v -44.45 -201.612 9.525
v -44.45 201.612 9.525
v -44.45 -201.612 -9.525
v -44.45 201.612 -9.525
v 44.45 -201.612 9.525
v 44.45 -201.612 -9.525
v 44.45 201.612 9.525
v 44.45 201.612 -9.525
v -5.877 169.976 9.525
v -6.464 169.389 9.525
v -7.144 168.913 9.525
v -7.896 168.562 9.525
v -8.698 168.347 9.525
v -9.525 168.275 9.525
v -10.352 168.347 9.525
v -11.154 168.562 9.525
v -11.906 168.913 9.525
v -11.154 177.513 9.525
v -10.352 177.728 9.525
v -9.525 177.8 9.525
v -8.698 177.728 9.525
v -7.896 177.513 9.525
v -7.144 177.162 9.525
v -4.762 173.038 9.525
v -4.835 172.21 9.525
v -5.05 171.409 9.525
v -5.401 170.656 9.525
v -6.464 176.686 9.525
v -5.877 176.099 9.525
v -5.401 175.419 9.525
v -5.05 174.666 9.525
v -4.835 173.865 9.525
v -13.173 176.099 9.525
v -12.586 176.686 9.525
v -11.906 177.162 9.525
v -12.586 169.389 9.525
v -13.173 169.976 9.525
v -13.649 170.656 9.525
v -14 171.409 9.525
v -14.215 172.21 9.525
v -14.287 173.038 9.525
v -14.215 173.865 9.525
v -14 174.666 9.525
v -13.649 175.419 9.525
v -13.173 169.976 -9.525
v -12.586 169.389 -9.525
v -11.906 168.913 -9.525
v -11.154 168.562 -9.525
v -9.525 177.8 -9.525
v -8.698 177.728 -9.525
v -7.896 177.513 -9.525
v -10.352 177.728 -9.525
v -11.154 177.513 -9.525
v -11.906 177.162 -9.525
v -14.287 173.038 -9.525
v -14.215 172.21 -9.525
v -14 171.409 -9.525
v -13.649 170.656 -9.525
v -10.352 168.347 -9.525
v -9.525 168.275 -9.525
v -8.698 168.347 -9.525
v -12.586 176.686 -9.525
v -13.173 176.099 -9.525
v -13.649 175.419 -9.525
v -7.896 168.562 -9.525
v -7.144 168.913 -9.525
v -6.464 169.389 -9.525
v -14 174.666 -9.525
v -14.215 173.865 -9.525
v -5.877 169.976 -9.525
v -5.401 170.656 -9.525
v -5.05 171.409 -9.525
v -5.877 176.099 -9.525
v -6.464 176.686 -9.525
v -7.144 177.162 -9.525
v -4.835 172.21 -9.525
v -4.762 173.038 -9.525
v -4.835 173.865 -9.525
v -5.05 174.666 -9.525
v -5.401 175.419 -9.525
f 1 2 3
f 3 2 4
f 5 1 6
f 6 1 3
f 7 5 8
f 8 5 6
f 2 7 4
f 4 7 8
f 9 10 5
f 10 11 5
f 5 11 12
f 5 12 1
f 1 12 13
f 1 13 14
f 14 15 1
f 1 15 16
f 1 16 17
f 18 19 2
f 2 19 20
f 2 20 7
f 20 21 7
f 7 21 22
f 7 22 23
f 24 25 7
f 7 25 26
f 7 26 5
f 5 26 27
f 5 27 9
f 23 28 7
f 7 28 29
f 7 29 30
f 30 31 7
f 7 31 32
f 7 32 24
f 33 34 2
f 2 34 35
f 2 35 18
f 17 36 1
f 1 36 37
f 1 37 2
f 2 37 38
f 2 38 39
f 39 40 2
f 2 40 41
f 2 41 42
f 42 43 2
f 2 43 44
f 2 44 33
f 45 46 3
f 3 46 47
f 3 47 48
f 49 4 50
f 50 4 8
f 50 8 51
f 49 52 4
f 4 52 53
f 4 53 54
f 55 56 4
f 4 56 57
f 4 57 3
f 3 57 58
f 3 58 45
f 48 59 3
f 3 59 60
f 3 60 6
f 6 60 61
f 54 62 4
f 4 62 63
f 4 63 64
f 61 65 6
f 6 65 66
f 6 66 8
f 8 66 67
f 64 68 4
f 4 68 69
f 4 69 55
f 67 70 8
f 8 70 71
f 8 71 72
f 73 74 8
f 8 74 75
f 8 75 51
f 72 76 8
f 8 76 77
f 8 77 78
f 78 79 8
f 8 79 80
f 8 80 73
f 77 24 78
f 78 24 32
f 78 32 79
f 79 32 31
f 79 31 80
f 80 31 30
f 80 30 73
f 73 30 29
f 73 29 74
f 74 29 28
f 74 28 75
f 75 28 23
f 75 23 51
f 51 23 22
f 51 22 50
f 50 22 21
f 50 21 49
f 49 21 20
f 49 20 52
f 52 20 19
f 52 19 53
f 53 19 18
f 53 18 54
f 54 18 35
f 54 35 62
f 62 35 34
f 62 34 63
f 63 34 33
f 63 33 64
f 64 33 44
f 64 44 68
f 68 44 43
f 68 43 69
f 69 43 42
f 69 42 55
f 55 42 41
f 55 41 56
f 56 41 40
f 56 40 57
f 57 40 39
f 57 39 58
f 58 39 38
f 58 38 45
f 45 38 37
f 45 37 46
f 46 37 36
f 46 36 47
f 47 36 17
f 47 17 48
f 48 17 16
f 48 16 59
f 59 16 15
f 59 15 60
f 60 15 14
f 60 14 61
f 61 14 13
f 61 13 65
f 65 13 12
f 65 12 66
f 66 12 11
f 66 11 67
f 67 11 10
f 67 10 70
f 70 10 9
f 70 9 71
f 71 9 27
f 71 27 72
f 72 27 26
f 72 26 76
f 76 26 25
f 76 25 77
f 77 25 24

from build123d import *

# Parameters (mm, degrees)
SKETCH1_W               = 88.9
SKETCH1_H               = 403.225
BOSS_EXTRUDE1_DEPTH     = 9.525
SKETCH2_R               = 4.7625
CUT_EXTRUDE1_DEPTH      = 1
CUT_EXTRUDE1_DEPTH_BACK = 20.05


with BuildPart() as part:
    # Sketch1 → Boss-Extrude1 (new body, symmetric)
    with BuildSketch(Plane.XY):
        Rectangle(SKETCH1_W, SKETCH1_H)
    extrude(amount=BOSS_EXTRUDE1_DEPTH, both=True)

    # Sketch2 → Cut-Extrude1 (cut, two sides)
    with BuildSketch(Plane.XY.offset(9.525)) as cut_extrude1_sk:
        with Locations((-9.525, 173.0375)):
            Circle(SKETCH2_R)
    extrude(amount=CUT_EXTRUDE1_DEPTH, mode=Mode.SUBTRACT)
    extrude(cut_extrude1_sk.sketch, amount=-CUT_EXTRUDE1_DEPTH_BACK, mode=Mode.SUBTRACT)


solid = part.part
